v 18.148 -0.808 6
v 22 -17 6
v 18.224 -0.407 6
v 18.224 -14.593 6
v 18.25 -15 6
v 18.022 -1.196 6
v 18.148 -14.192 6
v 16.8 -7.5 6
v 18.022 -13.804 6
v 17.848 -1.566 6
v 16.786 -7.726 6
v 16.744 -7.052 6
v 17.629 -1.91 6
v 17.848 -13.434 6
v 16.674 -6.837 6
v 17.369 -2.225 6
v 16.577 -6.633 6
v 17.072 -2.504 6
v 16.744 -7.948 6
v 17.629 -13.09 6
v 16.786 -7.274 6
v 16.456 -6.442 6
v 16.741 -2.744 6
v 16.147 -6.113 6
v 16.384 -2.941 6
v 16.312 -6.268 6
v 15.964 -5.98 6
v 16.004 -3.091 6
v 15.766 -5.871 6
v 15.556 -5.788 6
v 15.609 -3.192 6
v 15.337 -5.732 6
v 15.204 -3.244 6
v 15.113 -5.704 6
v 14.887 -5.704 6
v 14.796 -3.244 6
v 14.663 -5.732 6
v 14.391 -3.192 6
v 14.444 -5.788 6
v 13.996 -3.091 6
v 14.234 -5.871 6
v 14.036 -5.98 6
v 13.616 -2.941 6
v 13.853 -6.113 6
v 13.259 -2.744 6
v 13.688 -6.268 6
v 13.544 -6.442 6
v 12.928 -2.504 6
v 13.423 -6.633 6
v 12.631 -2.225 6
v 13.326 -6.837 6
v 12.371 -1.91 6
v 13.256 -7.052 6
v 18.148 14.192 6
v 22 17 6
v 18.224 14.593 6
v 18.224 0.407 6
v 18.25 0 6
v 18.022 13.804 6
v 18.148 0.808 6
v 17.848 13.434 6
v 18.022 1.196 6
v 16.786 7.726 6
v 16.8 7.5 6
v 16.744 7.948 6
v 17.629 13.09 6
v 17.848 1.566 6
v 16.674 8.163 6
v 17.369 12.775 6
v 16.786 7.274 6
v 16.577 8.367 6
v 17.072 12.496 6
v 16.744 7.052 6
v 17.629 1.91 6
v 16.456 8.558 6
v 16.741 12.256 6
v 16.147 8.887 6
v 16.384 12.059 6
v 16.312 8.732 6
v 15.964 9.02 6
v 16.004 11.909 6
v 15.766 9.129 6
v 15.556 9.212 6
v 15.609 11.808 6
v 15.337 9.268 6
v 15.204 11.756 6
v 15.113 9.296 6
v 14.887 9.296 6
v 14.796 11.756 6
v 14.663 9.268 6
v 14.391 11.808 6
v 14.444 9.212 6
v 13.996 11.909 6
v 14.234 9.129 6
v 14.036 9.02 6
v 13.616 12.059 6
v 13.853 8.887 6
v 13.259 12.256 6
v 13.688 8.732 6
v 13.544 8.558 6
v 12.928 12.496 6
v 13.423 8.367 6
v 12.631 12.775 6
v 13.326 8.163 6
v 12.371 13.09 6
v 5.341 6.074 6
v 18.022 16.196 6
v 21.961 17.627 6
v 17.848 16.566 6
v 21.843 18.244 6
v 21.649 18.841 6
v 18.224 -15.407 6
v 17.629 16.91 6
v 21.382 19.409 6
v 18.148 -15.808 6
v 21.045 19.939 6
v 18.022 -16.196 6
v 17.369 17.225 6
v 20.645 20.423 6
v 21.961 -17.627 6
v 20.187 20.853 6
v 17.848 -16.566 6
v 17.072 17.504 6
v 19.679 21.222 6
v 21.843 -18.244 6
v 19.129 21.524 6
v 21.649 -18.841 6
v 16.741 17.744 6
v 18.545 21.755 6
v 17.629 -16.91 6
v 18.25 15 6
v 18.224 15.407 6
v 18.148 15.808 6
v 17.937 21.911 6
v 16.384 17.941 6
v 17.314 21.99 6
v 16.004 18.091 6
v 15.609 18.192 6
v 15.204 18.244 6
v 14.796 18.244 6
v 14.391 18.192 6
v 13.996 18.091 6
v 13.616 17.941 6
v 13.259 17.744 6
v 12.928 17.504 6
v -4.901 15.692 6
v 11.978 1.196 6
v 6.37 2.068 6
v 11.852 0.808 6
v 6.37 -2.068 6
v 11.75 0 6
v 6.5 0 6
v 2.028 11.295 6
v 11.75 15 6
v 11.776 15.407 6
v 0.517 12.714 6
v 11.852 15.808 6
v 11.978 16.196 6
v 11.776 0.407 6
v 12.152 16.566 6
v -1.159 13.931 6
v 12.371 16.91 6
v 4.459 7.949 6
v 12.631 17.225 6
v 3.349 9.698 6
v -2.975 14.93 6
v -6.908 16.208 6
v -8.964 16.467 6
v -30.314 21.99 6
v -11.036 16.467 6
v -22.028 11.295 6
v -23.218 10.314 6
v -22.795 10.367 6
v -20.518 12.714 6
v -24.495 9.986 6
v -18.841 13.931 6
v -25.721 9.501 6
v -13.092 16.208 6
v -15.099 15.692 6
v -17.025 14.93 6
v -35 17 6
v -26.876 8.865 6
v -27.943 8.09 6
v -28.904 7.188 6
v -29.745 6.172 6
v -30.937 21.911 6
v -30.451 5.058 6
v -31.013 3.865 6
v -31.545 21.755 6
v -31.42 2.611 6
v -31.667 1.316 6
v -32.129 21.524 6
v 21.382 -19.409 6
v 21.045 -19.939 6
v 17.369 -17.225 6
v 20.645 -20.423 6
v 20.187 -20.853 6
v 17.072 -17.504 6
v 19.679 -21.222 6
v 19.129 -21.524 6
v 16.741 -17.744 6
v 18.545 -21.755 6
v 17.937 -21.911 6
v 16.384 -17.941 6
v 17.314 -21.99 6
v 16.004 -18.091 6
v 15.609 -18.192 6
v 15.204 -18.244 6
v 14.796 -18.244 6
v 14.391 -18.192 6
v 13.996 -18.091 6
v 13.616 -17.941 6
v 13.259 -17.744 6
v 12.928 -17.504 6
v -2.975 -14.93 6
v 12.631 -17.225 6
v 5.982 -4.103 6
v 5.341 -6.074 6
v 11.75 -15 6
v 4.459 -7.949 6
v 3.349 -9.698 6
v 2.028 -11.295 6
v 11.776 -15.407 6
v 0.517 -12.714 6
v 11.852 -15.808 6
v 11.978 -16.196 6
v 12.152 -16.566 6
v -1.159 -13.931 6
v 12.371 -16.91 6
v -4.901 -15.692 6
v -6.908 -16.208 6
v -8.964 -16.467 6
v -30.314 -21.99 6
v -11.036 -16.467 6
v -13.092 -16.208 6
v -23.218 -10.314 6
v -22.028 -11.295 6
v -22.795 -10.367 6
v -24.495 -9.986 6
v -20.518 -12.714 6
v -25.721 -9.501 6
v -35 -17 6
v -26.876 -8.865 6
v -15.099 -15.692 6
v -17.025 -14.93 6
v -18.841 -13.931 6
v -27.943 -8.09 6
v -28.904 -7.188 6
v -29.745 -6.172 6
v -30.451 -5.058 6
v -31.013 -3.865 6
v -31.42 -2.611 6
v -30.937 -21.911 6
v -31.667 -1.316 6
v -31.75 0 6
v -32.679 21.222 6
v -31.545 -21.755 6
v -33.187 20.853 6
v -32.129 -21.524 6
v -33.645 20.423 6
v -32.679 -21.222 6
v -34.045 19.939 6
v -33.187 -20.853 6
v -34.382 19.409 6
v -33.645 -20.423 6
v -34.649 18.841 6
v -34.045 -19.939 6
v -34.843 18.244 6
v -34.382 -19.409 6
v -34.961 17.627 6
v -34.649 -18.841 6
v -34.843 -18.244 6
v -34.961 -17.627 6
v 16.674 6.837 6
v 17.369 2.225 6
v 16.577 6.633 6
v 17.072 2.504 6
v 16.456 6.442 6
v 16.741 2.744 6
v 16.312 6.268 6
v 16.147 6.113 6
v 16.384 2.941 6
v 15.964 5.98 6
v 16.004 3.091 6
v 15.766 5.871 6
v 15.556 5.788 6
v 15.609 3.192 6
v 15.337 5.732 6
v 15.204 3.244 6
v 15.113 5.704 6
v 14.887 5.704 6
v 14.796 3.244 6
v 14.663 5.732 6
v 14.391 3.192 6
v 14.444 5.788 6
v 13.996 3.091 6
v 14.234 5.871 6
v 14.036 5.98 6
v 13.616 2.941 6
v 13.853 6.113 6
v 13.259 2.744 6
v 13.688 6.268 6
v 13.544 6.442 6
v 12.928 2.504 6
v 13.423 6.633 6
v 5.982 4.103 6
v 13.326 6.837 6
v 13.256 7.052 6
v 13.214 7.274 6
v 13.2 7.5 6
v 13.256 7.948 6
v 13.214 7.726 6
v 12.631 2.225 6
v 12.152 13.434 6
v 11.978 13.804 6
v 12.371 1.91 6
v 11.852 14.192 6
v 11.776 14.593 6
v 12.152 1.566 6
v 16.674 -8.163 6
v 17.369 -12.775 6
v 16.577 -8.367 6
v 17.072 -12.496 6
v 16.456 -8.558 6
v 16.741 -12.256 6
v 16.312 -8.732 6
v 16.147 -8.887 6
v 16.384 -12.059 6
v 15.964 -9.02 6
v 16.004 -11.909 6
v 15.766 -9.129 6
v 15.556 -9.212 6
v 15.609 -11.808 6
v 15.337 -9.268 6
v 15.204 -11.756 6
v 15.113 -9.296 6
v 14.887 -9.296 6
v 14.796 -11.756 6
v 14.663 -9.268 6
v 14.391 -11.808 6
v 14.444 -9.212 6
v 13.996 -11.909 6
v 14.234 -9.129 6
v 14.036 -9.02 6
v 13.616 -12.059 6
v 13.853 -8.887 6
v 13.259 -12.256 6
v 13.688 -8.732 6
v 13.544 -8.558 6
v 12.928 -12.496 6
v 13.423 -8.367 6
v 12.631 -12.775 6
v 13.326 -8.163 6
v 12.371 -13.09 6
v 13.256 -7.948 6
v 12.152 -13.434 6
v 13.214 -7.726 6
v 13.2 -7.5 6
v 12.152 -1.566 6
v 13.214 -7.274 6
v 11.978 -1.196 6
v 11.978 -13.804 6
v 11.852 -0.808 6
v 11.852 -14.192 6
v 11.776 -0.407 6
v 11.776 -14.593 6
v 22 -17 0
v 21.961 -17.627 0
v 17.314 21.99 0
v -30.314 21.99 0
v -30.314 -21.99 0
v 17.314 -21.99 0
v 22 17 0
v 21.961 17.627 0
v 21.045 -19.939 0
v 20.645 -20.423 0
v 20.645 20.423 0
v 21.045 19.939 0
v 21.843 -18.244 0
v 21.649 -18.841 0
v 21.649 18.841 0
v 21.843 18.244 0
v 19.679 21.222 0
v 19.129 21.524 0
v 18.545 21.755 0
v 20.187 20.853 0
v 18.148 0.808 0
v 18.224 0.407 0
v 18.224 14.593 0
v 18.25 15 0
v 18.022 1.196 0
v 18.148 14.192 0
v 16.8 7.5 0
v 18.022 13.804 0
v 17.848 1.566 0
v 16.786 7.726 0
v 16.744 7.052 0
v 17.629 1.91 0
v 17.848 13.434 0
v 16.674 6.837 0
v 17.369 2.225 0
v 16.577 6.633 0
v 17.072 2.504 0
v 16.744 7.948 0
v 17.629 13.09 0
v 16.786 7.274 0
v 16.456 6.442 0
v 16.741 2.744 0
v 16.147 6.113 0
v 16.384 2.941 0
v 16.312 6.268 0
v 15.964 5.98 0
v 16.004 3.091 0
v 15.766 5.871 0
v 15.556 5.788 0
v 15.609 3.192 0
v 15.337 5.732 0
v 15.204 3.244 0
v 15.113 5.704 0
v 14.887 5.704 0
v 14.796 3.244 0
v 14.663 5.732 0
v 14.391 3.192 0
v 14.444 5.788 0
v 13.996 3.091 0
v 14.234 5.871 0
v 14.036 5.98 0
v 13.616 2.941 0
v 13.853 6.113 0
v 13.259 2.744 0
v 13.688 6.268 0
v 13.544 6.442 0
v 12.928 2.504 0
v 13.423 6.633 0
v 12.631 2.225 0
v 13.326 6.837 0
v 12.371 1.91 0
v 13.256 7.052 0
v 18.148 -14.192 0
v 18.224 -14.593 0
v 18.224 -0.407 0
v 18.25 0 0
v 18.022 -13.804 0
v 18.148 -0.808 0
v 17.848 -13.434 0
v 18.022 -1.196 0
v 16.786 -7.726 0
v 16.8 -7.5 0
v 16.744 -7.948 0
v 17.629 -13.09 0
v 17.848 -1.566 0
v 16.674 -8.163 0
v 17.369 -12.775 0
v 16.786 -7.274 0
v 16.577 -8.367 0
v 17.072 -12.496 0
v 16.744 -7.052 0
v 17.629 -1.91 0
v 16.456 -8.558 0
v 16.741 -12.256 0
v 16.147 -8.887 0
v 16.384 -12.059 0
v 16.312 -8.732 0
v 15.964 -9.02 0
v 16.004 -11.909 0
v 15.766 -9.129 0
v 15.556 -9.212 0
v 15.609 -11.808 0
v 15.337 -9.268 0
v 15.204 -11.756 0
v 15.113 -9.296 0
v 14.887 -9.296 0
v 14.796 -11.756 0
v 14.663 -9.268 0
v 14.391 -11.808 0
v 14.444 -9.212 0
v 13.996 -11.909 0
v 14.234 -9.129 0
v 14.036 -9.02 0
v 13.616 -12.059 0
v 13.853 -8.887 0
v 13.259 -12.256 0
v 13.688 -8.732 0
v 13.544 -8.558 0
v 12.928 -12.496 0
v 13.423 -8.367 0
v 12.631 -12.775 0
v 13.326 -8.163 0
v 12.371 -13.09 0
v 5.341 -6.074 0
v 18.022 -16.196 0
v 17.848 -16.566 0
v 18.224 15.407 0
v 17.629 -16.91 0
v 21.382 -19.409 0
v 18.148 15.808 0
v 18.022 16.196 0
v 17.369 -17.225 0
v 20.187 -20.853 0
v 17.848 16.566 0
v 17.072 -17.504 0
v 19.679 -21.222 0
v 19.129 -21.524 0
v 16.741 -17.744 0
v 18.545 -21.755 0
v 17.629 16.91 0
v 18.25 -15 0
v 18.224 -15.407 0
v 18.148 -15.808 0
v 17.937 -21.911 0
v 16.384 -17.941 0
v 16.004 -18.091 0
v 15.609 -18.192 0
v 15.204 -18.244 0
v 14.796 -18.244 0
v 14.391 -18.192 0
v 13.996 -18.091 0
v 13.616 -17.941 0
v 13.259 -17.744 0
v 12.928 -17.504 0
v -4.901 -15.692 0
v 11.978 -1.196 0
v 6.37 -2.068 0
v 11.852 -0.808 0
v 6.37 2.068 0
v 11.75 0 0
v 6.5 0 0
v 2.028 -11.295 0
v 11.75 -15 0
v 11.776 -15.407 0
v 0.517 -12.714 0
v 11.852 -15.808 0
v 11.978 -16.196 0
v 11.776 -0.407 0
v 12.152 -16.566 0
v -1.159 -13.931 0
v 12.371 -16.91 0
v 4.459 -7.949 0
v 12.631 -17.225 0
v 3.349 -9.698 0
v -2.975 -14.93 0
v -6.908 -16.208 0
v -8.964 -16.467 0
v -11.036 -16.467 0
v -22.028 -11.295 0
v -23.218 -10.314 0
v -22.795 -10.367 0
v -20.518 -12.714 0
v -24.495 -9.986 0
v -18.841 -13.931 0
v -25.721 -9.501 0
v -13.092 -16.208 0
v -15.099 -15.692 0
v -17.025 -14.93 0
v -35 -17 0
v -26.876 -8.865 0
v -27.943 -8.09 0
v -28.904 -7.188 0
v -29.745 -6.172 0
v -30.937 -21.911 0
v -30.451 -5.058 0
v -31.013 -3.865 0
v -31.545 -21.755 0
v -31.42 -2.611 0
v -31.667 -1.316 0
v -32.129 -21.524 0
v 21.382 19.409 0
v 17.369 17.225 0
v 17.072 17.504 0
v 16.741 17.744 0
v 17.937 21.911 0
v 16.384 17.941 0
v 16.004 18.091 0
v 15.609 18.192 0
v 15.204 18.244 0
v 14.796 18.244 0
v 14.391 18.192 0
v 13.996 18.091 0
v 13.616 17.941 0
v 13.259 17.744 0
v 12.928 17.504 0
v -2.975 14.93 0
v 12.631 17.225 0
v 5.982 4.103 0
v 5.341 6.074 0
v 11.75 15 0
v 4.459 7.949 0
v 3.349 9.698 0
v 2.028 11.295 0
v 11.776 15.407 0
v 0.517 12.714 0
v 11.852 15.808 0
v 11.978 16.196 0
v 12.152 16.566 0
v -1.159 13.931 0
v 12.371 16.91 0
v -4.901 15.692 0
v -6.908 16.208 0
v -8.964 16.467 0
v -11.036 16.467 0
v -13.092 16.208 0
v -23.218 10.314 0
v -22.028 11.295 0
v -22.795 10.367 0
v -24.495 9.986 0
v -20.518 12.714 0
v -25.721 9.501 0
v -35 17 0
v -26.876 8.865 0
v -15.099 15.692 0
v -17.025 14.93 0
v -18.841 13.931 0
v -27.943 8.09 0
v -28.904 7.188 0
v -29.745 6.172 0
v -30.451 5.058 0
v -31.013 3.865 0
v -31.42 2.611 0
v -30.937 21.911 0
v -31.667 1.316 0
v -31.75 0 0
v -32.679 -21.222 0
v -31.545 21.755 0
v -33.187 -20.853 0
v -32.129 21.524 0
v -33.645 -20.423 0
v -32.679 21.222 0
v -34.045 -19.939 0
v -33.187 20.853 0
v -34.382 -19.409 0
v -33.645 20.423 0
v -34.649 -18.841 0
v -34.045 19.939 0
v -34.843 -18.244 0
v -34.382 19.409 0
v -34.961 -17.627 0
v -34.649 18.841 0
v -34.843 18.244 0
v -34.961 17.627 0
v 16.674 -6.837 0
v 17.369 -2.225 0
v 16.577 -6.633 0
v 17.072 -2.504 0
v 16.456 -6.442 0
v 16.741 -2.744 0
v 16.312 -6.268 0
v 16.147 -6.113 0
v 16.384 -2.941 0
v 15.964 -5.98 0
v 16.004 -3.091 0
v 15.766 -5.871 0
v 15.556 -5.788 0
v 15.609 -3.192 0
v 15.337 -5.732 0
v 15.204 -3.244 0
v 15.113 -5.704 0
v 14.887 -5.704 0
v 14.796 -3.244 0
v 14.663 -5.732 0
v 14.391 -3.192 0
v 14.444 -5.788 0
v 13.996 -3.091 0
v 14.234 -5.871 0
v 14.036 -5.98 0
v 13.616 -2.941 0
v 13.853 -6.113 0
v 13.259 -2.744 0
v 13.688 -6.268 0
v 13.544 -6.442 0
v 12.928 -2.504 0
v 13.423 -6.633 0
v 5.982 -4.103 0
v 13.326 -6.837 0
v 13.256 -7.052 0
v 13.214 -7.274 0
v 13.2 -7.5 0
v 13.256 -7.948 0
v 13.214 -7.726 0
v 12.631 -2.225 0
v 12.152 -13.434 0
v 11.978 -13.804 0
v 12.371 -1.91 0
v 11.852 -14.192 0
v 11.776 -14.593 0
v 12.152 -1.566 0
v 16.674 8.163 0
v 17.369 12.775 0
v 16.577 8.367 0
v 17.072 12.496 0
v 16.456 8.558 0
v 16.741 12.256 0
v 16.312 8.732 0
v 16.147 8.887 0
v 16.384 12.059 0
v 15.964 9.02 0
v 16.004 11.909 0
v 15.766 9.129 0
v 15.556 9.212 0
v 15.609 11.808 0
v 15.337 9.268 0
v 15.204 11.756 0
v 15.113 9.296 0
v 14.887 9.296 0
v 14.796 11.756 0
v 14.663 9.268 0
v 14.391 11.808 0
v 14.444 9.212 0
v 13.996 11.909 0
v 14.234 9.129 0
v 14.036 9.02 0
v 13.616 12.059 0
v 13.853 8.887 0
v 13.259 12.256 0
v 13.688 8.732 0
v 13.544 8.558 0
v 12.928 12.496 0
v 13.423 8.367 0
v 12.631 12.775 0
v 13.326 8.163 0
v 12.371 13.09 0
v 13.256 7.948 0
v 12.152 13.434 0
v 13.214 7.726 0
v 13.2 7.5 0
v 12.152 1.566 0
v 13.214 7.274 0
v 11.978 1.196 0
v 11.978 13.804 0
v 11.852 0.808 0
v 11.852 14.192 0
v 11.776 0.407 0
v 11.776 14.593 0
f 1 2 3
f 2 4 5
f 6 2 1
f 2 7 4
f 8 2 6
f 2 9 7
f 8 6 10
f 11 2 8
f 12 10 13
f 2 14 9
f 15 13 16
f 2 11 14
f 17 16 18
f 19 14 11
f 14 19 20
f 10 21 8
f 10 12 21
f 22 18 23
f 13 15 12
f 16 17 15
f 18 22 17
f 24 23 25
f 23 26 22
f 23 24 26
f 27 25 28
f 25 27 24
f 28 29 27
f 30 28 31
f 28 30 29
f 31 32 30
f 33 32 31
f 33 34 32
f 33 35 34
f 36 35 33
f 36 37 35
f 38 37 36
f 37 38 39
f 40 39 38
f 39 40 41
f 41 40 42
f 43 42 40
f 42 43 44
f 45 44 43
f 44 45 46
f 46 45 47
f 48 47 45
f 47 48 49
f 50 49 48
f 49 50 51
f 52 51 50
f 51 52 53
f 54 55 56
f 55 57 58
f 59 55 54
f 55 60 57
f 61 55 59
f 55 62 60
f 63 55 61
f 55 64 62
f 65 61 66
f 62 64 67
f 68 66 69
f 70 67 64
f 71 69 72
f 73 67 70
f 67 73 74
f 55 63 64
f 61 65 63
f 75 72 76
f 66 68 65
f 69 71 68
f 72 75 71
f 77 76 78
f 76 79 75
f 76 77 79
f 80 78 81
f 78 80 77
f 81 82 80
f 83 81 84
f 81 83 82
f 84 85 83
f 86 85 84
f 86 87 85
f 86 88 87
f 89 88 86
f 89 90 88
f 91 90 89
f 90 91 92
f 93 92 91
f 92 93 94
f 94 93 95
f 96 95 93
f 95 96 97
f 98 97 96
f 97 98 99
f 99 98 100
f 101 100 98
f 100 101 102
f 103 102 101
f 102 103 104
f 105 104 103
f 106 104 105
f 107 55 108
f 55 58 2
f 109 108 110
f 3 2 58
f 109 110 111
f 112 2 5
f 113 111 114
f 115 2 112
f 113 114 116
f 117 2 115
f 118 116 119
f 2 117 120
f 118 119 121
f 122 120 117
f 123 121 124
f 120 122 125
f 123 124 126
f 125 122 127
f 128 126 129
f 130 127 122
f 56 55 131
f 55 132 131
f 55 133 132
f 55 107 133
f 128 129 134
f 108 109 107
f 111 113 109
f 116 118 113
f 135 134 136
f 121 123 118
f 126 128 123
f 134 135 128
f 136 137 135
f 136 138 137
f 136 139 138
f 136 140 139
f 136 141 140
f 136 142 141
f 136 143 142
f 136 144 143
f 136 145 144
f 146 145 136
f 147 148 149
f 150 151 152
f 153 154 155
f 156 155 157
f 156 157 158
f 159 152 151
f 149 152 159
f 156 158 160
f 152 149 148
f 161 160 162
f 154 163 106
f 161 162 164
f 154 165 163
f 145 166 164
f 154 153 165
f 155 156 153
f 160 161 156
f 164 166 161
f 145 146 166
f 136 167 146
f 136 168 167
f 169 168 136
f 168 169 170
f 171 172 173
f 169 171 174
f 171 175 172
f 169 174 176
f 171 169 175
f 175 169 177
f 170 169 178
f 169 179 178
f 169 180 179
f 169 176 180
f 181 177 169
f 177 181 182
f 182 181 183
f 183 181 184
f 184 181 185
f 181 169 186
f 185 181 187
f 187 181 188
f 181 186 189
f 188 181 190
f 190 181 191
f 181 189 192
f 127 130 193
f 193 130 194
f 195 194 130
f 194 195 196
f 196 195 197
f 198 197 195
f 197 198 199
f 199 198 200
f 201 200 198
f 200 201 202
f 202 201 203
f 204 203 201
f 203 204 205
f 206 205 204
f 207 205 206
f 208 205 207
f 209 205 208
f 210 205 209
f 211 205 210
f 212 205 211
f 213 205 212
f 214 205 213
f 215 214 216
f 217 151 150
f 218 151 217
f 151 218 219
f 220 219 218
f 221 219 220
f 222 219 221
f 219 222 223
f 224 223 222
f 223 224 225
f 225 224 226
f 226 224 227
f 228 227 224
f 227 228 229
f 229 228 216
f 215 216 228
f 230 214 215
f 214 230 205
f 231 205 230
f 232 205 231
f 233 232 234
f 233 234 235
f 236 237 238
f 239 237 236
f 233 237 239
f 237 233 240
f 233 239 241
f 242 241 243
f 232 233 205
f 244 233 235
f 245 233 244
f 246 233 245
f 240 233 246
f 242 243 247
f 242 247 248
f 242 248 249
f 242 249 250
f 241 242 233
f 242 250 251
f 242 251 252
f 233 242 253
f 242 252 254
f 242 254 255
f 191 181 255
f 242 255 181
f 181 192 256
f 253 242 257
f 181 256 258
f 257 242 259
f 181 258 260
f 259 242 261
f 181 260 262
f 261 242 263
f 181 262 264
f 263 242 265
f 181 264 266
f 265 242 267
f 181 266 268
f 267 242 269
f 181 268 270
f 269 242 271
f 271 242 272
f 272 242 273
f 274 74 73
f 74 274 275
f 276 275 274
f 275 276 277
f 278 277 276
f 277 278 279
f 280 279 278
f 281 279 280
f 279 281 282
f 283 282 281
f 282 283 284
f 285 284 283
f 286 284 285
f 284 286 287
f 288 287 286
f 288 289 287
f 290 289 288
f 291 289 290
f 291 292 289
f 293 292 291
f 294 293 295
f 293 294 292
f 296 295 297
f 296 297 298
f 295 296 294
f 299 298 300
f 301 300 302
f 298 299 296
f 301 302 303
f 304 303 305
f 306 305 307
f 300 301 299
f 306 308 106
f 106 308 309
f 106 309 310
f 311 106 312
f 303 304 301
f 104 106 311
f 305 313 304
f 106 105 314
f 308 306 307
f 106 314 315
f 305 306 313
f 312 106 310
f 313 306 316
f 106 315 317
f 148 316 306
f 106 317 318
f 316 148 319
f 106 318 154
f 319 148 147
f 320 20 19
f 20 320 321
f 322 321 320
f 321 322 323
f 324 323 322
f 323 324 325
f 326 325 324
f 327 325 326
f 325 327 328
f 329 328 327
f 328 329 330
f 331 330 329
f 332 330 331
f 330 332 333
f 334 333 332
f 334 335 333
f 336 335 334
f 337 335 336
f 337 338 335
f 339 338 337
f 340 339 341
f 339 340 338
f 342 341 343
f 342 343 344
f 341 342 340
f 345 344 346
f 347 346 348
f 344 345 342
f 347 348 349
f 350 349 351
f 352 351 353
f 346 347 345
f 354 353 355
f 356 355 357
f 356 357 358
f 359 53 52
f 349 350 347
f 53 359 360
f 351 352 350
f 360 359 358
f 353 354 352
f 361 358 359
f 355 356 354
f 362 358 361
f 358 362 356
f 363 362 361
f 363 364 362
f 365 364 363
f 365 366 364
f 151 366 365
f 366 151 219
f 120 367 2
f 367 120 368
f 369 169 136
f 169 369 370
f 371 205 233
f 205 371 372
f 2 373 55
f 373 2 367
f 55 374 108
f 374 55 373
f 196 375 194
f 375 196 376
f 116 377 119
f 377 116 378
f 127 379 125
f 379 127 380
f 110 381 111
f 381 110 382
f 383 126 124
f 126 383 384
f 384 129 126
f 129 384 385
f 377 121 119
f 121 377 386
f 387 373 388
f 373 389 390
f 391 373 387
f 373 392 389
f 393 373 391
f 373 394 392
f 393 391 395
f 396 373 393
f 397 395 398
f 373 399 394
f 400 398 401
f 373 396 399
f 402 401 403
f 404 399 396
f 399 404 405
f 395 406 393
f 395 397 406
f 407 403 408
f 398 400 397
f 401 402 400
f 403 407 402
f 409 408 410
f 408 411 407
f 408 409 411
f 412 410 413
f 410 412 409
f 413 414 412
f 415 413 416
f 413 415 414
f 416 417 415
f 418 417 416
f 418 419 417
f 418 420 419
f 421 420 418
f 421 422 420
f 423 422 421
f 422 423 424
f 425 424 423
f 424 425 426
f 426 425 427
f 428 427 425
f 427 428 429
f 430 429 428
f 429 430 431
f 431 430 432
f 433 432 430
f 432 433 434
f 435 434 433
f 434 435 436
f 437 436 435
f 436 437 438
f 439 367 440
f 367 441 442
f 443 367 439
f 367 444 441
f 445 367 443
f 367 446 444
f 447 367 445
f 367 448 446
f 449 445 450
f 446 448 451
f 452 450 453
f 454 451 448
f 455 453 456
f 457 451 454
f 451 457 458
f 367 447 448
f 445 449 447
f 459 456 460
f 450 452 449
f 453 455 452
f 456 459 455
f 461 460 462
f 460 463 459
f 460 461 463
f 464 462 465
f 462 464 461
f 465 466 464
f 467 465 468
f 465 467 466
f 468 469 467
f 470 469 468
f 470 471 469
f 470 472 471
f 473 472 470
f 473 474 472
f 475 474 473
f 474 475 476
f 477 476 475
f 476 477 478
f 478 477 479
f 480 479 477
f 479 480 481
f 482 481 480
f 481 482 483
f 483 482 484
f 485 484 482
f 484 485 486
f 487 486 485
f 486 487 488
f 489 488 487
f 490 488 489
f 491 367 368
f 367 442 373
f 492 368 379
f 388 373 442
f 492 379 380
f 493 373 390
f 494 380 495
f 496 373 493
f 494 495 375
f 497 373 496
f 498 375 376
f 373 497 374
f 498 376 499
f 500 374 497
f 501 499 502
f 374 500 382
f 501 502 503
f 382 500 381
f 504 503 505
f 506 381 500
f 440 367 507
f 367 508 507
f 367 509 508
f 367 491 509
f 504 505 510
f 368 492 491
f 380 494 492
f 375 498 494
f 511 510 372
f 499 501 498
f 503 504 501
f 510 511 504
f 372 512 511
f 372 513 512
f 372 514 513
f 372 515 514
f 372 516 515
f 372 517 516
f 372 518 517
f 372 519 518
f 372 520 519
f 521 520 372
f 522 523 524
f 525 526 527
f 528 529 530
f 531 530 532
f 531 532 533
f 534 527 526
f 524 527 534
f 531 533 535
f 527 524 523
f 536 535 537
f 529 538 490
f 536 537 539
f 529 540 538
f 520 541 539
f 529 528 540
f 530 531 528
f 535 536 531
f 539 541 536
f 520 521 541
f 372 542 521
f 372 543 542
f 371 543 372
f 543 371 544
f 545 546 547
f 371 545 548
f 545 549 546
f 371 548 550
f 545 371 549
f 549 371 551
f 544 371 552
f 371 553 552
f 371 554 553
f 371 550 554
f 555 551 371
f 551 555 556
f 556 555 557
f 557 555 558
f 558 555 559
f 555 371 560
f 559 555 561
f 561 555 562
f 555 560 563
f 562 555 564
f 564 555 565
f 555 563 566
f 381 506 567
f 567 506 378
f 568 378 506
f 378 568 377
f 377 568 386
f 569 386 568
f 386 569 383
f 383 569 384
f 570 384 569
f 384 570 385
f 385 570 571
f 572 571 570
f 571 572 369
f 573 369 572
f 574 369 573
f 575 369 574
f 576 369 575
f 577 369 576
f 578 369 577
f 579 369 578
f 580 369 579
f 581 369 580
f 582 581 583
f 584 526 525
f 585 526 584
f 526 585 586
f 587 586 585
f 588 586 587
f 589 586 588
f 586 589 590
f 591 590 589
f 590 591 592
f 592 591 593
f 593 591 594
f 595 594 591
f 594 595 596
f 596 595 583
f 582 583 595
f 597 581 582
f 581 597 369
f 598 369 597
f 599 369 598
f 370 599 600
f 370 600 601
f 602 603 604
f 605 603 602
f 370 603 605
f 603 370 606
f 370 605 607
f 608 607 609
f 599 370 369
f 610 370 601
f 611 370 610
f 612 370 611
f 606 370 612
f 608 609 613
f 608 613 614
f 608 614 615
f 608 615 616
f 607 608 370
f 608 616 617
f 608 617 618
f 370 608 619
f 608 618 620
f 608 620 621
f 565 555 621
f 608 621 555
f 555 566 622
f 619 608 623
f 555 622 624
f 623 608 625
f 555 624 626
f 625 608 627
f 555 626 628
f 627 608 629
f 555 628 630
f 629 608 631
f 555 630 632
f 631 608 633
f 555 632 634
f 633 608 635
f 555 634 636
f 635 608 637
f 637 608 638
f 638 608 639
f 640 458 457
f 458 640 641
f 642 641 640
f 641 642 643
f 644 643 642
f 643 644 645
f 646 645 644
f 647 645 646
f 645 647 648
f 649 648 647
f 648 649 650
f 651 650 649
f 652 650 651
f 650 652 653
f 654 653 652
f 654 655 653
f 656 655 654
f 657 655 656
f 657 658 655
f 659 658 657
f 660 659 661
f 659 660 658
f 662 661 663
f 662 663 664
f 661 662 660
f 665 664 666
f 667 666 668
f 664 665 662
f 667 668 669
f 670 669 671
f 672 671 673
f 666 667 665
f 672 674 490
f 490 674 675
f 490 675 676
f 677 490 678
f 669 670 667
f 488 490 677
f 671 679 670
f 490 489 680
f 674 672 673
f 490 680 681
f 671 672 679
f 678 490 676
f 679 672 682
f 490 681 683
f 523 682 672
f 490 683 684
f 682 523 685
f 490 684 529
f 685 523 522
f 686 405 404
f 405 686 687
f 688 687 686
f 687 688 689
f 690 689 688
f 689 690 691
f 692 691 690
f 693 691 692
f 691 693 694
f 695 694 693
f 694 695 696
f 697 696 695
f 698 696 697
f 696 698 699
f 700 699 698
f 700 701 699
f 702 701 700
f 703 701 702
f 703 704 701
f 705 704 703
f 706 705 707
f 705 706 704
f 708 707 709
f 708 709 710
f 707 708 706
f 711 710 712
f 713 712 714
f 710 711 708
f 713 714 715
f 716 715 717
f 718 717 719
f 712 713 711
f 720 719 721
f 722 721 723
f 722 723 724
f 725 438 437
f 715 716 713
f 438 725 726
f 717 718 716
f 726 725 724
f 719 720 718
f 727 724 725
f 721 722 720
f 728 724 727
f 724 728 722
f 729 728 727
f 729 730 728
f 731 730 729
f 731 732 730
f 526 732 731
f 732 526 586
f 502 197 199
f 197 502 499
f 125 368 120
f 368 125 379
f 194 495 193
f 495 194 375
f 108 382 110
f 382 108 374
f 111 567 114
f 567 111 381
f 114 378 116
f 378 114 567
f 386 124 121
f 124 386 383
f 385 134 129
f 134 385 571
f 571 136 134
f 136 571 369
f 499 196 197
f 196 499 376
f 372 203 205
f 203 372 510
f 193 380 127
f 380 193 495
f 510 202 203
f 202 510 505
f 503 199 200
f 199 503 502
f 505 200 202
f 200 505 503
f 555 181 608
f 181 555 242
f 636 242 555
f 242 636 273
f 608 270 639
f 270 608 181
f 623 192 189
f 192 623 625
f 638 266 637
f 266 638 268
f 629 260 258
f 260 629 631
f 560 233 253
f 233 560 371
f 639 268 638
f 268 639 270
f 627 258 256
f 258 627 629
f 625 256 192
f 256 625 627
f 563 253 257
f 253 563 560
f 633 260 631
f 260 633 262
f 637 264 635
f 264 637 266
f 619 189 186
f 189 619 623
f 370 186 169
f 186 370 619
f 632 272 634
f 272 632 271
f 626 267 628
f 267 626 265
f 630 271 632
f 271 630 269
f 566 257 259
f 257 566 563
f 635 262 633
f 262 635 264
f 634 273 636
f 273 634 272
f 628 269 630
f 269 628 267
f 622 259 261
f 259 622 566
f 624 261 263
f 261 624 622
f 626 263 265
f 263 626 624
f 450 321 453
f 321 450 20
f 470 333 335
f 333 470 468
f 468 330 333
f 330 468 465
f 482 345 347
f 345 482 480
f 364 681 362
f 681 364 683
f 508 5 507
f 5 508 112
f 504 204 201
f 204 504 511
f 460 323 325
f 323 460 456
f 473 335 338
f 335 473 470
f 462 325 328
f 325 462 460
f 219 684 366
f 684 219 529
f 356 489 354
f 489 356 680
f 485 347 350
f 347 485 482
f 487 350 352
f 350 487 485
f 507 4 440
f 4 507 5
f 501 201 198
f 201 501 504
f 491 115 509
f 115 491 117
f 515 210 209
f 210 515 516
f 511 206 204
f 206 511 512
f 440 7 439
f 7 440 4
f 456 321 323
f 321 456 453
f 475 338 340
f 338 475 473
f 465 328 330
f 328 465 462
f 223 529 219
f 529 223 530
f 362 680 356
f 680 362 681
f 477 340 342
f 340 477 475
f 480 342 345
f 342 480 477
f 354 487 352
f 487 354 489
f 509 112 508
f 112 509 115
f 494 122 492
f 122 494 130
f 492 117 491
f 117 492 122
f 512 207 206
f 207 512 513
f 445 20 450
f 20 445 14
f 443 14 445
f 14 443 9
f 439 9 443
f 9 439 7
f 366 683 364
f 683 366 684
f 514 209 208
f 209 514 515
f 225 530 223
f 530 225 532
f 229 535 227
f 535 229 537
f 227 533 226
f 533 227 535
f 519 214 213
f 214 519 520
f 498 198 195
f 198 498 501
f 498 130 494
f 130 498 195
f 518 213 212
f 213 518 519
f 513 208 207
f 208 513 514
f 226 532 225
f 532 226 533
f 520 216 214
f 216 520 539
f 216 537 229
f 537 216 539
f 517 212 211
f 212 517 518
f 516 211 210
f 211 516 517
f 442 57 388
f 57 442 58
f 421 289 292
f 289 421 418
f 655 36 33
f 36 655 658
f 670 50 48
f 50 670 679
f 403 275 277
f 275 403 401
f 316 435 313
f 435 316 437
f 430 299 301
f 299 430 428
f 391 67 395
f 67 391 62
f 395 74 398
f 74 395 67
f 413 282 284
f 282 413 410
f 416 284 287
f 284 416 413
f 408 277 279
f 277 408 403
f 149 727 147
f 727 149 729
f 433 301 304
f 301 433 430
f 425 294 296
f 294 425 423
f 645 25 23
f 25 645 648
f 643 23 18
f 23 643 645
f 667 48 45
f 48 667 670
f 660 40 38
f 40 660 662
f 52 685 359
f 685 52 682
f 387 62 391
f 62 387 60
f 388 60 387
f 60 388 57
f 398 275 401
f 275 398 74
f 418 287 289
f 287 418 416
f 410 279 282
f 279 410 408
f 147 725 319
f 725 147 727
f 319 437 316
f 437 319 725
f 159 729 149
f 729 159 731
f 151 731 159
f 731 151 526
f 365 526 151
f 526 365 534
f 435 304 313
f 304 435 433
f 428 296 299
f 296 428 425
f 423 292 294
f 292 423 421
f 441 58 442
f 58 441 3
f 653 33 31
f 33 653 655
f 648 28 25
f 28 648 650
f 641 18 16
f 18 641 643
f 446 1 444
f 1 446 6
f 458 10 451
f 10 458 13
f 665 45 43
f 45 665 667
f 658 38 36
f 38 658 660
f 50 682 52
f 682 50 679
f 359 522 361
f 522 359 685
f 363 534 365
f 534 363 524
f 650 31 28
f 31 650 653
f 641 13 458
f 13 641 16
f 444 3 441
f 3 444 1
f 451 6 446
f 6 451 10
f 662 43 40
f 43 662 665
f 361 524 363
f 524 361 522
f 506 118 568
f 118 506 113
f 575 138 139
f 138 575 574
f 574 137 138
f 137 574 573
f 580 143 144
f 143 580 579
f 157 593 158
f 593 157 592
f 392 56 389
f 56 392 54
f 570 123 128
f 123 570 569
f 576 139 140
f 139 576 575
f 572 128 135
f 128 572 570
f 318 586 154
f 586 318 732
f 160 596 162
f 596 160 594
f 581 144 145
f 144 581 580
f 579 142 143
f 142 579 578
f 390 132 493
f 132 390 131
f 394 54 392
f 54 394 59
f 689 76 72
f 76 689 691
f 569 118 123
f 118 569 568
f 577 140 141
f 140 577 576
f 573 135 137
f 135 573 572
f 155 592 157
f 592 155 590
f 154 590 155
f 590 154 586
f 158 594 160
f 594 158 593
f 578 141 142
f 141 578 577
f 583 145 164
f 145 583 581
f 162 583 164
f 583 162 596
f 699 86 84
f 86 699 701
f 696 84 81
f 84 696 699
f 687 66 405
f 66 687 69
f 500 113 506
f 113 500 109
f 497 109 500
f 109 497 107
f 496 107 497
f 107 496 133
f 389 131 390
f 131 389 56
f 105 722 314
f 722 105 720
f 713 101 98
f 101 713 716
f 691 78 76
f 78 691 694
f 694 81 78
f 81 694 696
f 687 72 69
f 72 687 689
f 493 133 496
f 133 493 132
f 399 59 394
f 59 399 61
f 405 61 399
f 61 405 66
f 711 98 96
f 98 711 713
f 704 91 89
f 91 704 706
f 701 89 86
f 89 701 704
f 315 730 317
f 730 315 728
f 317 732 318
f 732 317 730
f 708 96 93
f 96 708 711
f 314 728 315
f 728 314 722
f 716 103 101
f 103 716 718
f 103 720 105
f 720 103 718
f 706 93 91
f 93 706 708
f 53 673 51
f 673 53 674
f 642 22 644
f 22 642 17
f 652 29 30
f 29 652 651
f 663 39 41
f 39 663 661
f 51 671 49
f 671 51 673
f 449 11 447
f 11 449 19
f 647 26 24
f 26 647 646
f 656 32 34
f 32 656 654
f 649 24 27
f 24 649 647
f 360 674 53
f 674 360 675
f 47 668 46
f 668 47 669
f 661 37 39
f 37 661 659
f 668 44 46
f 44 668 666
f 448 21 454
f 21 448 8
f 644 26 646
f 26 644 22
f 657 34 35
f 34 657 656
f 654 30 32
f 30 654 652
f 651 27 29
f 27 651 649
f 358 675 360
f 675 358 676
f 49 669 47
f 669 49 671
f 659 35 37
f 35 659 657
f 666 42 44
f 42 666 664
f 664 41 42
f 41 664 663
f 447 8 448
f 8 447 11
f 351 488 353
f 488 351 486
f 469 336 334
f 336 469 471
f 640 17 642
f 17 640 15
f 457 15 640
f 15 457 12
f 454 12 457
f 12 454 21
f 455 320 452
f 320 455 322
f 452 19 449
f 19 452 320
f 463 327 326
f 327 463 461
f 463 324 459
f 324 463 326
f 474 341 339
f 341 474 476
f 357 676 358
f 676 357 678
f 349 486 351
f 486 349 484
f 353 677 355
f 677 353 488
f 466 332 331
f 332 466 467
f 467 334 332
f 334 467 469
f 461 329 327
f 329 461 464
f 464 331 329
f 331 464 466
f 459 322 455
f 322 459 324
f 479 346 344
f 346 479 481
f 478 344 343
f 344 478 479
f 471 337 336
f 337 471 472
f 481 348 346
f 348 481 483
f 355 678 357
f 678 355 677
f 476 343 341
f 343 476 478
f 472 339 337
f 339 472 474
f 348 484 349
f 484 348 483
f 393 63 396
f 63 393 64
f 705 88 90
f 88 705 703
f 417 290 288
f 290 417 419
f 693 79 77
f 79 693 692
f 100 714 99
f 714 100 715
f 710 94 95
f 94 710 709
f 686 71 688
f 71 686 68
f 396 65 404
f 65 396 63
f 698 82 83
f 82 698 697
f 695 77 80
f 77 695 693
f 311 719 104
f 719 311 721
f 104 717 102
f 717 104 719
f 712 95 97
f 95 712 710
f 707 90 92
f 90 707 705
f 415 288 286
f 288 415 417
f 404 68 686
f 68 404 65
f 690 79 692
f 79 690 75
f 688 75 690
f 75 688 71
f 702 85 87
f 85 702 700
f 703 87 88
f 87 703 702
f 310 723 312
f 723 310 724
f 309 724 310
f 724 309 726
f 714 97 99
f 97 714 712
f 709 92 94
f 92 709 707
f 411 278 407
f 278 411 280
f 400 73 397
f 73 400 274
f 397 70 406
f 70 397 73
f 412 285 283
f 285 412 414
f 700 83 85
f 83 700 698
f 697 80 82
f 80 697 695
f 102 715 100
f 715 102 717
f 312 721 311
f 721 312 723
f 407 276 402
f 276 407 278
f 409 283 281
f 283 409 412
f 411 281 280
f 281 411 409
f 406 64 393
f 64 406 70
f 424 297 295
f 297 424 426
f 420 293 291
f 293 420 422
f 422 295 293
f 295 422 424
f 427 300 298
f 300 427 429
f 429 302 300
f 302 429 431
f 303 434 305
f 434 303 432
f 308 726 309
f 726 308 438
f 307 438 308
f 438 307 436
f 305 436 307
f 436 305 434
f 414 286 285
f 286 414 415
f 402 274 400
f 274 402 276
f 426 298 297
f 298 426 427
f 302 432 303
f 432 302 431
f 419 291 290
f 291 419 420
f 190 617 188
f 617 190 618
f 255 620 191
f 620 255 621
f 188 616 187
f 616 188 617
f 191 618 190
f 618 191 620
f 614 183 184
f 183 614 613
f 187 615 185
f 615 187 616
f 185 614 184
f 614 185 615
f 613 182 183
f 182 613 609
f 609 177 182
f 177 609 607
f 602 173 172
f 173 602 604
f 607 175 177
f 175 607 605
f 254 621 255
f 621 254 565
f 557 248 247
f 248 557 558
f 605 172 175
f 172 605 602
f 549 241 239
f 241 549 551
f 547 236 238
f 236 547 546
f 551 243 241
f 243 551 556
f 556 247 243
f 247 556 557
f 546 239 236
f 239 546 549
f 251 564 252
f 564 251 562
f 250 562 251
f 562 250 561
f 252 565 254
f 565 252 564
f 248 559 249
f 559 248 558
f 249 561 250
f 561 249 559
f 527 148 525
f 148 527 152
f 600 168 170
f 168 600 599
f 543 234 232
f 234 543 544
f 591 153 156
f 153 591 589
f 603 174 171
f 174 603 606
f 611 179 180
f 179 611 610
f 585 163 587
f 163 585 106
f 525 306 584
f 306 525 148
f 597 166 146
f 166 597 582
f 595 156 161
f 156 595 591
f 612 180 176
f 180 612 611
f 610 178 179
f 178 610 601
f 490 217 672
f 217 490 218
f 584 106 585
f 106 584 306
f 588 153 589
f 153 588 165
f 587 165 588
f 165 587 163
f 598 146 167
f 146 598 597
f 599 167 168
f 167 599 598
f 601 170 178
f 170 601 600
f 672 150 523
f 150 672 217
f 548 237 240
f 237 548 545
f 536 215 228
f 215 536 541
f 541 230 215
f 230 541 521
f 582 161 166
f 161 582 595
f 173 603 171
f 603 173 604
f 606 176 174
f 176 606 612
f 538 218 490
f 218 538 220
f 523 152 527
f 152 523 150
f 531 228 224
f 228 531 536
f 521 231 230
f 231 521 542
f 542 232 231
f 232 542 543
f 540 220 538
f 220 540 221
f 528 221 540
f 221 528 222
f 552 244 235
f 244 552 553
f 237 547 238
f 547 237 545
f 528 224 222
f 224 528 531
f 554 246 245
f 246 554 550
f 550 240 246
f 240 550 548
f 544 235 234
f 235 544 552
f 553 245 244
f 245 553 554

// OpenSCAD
$fn = 50;


difference() {
	union() {
		hull() {
			translate(v = [-17.0000000000, 17.0000000000, 0]) {
				cylinder(h = 6, r = 5);
			}
			translate(v = [17.0000000000, 17.0000000000, 0]) {
				cylinder(h = 6, r = 5);
			}
			translate(v = [-17.0000000000, -17.0000000000, 0]) {
				cylinder(h = 6, r = 5);
			}
			translate(v = [17.0000000000, -17.0000000000, 0]) {
				cylinder(h = 6, r = 5);
			}
		}
		translate(v = [-13.0000000000, 0, 0]) {
			hull() {
				translate(v = [-17.0000000000, 17.0000000000, 0]) {
					cylinder(h = 6, r = 5);
				}
				translate(v = [17.0000000000, 17.0000000000, 0]) {
					cylinder(h = 6, r = 5);
				}
				translate(v = [-17.0000000000, -17.0000000000, 0]) {
					cylinder(h = 6, r = 5);
				}
				translate(v = [17.0000000000, -17.0000000000, 0]) {
					cylinder(h = 6, r = 5);
				}
			}
		}
	}
	union() {
		translate(v = [15.0000000000, -15.0000000000, -100.0000000000]) {
			cylinder(h = 200, r = 3.2500000000);
		}
		translate(v = [15.0000000000, 0.0000000000, -100.0000000000]) {
			cylinder(h = 200, r = 3.2500000000);
		}
		translate(v = [15.0000000000, 15.0000000000, -100.0000000000]) {
			cylinder(h = 200, r = 3.2500000000);
		}
		translate(v = [15.0000000000, -15.0000000000, -100.0000000000]) {
			cylinder(h = 200, r = 3.2500000000);
		}
		translate(v = [15.0000000000, 0.0000000000, -100.0000000000]) {
			cylinder(h = 200, r = 3.2500000000);
		}
		translate(v = [15.0000000000, 15.0000000000, -100.0000000000]) {
			cylinder(h = 200, r = 3.2500000000);
		}
		translate(v = [15.0000000000, -15.0000000000, -100.0000000000]) {
			cylinder(h = 200, r = 1.8000000000);
		}
		translate(v = [15.0000000000, -7.5000000000, -100.0000000000]) {
			cylinder(h = 200, r = 1.8000000000);
		}
		translate(v = [15.0000000000, 0.0000000000, -100.0000000000]) {
			cylinder(h = 200, r = 1.8000000000);
		}
		translate(v = [15.0000000000, 7.5000000000, -100.0000000000]) {
			cylinder(h = 200, r = 1.8000000000);
		}
		translate(v = [15.0000000000, 15.0000000000, -100.0000000000]) {
			cylinder(h = 200, r = 1.8000000000);
		}
		translate(v = [15.0000000000, -15.0000000000, -100.0000000000]) {
			cylinder(h = 200, r = 1.8000000000);
		}
		translate(v = [15.0000000000, -7.5000000000, -100.0000000000]) {
			cylinder(h = 200, r = 1.8000000000);
		}
		translate(v = [15.0000000000, 0.0000000000, -100.0000000000]) {
			cylinder(h = 200, r = 1.8000000000);
		}
		translate(v = [15.0000000000, 7.5000000000, -100.0000000000]) {
			cylinder(h = 200, r = 1.8000000000);
		}
		translate(v = [15.0000000000, 15.0000000000, -100.0000000000]) {
			cylinder(h = 200, r = 1.8000000000);
		}
		translate(v = [15.0000000000, -15.0000000000, -100.0000000000]) {
			cylinder(h = 200, r = 1.8000000000);
		}
		translate(v = [15.0000000000, -7.5000000000, -100.0000000000]) {
			cylinder(h = 200, r = 1.8000000000);
		}
		translate(v = [15.0000000000, 0.0000000000, -100.0000000000]) {
			cylinder(h = 200, r = 1.8000000000);
		}
		translate(v = [15.0000000000, 7.5000000000, -100.0000000000]) {
			cylinder(h = 200, r = 1.8000000000);
		}
		translate(v = [15.0000000000, 15.0000000000, -100.0000000000]) {
			cylinder(h = 200, r = 1.8000000000);
		}
		translate(v = [-17.5000000000, 0, 0]) {
			hull() {
				translate(v = [-3.7500000000, 0.0000000000, 0]) {
					cylinder(h = 6, r = 10.5000000000);
				}
				translate(v = [3.7500000000, 0.0000000000, 0]) {
					cylinder(h = 6, r = 10.5000000000);
				}
				translate(v = [-3.7500000000, -0.0000000000, 0]) {
					cylinder(h = 6, r = 10.5000000000);
				}
				translate(v = [3.7500000000, -0.0000000000, 0]) {
					cylinder(h = 6, r = 10.5000000000);
				}
			}
		}
		translate(v = [-10.0000000000, 0, 0.0000000000]) {
			cylinder(h = 6, r = 16.5000000000);
		}
	}
}
